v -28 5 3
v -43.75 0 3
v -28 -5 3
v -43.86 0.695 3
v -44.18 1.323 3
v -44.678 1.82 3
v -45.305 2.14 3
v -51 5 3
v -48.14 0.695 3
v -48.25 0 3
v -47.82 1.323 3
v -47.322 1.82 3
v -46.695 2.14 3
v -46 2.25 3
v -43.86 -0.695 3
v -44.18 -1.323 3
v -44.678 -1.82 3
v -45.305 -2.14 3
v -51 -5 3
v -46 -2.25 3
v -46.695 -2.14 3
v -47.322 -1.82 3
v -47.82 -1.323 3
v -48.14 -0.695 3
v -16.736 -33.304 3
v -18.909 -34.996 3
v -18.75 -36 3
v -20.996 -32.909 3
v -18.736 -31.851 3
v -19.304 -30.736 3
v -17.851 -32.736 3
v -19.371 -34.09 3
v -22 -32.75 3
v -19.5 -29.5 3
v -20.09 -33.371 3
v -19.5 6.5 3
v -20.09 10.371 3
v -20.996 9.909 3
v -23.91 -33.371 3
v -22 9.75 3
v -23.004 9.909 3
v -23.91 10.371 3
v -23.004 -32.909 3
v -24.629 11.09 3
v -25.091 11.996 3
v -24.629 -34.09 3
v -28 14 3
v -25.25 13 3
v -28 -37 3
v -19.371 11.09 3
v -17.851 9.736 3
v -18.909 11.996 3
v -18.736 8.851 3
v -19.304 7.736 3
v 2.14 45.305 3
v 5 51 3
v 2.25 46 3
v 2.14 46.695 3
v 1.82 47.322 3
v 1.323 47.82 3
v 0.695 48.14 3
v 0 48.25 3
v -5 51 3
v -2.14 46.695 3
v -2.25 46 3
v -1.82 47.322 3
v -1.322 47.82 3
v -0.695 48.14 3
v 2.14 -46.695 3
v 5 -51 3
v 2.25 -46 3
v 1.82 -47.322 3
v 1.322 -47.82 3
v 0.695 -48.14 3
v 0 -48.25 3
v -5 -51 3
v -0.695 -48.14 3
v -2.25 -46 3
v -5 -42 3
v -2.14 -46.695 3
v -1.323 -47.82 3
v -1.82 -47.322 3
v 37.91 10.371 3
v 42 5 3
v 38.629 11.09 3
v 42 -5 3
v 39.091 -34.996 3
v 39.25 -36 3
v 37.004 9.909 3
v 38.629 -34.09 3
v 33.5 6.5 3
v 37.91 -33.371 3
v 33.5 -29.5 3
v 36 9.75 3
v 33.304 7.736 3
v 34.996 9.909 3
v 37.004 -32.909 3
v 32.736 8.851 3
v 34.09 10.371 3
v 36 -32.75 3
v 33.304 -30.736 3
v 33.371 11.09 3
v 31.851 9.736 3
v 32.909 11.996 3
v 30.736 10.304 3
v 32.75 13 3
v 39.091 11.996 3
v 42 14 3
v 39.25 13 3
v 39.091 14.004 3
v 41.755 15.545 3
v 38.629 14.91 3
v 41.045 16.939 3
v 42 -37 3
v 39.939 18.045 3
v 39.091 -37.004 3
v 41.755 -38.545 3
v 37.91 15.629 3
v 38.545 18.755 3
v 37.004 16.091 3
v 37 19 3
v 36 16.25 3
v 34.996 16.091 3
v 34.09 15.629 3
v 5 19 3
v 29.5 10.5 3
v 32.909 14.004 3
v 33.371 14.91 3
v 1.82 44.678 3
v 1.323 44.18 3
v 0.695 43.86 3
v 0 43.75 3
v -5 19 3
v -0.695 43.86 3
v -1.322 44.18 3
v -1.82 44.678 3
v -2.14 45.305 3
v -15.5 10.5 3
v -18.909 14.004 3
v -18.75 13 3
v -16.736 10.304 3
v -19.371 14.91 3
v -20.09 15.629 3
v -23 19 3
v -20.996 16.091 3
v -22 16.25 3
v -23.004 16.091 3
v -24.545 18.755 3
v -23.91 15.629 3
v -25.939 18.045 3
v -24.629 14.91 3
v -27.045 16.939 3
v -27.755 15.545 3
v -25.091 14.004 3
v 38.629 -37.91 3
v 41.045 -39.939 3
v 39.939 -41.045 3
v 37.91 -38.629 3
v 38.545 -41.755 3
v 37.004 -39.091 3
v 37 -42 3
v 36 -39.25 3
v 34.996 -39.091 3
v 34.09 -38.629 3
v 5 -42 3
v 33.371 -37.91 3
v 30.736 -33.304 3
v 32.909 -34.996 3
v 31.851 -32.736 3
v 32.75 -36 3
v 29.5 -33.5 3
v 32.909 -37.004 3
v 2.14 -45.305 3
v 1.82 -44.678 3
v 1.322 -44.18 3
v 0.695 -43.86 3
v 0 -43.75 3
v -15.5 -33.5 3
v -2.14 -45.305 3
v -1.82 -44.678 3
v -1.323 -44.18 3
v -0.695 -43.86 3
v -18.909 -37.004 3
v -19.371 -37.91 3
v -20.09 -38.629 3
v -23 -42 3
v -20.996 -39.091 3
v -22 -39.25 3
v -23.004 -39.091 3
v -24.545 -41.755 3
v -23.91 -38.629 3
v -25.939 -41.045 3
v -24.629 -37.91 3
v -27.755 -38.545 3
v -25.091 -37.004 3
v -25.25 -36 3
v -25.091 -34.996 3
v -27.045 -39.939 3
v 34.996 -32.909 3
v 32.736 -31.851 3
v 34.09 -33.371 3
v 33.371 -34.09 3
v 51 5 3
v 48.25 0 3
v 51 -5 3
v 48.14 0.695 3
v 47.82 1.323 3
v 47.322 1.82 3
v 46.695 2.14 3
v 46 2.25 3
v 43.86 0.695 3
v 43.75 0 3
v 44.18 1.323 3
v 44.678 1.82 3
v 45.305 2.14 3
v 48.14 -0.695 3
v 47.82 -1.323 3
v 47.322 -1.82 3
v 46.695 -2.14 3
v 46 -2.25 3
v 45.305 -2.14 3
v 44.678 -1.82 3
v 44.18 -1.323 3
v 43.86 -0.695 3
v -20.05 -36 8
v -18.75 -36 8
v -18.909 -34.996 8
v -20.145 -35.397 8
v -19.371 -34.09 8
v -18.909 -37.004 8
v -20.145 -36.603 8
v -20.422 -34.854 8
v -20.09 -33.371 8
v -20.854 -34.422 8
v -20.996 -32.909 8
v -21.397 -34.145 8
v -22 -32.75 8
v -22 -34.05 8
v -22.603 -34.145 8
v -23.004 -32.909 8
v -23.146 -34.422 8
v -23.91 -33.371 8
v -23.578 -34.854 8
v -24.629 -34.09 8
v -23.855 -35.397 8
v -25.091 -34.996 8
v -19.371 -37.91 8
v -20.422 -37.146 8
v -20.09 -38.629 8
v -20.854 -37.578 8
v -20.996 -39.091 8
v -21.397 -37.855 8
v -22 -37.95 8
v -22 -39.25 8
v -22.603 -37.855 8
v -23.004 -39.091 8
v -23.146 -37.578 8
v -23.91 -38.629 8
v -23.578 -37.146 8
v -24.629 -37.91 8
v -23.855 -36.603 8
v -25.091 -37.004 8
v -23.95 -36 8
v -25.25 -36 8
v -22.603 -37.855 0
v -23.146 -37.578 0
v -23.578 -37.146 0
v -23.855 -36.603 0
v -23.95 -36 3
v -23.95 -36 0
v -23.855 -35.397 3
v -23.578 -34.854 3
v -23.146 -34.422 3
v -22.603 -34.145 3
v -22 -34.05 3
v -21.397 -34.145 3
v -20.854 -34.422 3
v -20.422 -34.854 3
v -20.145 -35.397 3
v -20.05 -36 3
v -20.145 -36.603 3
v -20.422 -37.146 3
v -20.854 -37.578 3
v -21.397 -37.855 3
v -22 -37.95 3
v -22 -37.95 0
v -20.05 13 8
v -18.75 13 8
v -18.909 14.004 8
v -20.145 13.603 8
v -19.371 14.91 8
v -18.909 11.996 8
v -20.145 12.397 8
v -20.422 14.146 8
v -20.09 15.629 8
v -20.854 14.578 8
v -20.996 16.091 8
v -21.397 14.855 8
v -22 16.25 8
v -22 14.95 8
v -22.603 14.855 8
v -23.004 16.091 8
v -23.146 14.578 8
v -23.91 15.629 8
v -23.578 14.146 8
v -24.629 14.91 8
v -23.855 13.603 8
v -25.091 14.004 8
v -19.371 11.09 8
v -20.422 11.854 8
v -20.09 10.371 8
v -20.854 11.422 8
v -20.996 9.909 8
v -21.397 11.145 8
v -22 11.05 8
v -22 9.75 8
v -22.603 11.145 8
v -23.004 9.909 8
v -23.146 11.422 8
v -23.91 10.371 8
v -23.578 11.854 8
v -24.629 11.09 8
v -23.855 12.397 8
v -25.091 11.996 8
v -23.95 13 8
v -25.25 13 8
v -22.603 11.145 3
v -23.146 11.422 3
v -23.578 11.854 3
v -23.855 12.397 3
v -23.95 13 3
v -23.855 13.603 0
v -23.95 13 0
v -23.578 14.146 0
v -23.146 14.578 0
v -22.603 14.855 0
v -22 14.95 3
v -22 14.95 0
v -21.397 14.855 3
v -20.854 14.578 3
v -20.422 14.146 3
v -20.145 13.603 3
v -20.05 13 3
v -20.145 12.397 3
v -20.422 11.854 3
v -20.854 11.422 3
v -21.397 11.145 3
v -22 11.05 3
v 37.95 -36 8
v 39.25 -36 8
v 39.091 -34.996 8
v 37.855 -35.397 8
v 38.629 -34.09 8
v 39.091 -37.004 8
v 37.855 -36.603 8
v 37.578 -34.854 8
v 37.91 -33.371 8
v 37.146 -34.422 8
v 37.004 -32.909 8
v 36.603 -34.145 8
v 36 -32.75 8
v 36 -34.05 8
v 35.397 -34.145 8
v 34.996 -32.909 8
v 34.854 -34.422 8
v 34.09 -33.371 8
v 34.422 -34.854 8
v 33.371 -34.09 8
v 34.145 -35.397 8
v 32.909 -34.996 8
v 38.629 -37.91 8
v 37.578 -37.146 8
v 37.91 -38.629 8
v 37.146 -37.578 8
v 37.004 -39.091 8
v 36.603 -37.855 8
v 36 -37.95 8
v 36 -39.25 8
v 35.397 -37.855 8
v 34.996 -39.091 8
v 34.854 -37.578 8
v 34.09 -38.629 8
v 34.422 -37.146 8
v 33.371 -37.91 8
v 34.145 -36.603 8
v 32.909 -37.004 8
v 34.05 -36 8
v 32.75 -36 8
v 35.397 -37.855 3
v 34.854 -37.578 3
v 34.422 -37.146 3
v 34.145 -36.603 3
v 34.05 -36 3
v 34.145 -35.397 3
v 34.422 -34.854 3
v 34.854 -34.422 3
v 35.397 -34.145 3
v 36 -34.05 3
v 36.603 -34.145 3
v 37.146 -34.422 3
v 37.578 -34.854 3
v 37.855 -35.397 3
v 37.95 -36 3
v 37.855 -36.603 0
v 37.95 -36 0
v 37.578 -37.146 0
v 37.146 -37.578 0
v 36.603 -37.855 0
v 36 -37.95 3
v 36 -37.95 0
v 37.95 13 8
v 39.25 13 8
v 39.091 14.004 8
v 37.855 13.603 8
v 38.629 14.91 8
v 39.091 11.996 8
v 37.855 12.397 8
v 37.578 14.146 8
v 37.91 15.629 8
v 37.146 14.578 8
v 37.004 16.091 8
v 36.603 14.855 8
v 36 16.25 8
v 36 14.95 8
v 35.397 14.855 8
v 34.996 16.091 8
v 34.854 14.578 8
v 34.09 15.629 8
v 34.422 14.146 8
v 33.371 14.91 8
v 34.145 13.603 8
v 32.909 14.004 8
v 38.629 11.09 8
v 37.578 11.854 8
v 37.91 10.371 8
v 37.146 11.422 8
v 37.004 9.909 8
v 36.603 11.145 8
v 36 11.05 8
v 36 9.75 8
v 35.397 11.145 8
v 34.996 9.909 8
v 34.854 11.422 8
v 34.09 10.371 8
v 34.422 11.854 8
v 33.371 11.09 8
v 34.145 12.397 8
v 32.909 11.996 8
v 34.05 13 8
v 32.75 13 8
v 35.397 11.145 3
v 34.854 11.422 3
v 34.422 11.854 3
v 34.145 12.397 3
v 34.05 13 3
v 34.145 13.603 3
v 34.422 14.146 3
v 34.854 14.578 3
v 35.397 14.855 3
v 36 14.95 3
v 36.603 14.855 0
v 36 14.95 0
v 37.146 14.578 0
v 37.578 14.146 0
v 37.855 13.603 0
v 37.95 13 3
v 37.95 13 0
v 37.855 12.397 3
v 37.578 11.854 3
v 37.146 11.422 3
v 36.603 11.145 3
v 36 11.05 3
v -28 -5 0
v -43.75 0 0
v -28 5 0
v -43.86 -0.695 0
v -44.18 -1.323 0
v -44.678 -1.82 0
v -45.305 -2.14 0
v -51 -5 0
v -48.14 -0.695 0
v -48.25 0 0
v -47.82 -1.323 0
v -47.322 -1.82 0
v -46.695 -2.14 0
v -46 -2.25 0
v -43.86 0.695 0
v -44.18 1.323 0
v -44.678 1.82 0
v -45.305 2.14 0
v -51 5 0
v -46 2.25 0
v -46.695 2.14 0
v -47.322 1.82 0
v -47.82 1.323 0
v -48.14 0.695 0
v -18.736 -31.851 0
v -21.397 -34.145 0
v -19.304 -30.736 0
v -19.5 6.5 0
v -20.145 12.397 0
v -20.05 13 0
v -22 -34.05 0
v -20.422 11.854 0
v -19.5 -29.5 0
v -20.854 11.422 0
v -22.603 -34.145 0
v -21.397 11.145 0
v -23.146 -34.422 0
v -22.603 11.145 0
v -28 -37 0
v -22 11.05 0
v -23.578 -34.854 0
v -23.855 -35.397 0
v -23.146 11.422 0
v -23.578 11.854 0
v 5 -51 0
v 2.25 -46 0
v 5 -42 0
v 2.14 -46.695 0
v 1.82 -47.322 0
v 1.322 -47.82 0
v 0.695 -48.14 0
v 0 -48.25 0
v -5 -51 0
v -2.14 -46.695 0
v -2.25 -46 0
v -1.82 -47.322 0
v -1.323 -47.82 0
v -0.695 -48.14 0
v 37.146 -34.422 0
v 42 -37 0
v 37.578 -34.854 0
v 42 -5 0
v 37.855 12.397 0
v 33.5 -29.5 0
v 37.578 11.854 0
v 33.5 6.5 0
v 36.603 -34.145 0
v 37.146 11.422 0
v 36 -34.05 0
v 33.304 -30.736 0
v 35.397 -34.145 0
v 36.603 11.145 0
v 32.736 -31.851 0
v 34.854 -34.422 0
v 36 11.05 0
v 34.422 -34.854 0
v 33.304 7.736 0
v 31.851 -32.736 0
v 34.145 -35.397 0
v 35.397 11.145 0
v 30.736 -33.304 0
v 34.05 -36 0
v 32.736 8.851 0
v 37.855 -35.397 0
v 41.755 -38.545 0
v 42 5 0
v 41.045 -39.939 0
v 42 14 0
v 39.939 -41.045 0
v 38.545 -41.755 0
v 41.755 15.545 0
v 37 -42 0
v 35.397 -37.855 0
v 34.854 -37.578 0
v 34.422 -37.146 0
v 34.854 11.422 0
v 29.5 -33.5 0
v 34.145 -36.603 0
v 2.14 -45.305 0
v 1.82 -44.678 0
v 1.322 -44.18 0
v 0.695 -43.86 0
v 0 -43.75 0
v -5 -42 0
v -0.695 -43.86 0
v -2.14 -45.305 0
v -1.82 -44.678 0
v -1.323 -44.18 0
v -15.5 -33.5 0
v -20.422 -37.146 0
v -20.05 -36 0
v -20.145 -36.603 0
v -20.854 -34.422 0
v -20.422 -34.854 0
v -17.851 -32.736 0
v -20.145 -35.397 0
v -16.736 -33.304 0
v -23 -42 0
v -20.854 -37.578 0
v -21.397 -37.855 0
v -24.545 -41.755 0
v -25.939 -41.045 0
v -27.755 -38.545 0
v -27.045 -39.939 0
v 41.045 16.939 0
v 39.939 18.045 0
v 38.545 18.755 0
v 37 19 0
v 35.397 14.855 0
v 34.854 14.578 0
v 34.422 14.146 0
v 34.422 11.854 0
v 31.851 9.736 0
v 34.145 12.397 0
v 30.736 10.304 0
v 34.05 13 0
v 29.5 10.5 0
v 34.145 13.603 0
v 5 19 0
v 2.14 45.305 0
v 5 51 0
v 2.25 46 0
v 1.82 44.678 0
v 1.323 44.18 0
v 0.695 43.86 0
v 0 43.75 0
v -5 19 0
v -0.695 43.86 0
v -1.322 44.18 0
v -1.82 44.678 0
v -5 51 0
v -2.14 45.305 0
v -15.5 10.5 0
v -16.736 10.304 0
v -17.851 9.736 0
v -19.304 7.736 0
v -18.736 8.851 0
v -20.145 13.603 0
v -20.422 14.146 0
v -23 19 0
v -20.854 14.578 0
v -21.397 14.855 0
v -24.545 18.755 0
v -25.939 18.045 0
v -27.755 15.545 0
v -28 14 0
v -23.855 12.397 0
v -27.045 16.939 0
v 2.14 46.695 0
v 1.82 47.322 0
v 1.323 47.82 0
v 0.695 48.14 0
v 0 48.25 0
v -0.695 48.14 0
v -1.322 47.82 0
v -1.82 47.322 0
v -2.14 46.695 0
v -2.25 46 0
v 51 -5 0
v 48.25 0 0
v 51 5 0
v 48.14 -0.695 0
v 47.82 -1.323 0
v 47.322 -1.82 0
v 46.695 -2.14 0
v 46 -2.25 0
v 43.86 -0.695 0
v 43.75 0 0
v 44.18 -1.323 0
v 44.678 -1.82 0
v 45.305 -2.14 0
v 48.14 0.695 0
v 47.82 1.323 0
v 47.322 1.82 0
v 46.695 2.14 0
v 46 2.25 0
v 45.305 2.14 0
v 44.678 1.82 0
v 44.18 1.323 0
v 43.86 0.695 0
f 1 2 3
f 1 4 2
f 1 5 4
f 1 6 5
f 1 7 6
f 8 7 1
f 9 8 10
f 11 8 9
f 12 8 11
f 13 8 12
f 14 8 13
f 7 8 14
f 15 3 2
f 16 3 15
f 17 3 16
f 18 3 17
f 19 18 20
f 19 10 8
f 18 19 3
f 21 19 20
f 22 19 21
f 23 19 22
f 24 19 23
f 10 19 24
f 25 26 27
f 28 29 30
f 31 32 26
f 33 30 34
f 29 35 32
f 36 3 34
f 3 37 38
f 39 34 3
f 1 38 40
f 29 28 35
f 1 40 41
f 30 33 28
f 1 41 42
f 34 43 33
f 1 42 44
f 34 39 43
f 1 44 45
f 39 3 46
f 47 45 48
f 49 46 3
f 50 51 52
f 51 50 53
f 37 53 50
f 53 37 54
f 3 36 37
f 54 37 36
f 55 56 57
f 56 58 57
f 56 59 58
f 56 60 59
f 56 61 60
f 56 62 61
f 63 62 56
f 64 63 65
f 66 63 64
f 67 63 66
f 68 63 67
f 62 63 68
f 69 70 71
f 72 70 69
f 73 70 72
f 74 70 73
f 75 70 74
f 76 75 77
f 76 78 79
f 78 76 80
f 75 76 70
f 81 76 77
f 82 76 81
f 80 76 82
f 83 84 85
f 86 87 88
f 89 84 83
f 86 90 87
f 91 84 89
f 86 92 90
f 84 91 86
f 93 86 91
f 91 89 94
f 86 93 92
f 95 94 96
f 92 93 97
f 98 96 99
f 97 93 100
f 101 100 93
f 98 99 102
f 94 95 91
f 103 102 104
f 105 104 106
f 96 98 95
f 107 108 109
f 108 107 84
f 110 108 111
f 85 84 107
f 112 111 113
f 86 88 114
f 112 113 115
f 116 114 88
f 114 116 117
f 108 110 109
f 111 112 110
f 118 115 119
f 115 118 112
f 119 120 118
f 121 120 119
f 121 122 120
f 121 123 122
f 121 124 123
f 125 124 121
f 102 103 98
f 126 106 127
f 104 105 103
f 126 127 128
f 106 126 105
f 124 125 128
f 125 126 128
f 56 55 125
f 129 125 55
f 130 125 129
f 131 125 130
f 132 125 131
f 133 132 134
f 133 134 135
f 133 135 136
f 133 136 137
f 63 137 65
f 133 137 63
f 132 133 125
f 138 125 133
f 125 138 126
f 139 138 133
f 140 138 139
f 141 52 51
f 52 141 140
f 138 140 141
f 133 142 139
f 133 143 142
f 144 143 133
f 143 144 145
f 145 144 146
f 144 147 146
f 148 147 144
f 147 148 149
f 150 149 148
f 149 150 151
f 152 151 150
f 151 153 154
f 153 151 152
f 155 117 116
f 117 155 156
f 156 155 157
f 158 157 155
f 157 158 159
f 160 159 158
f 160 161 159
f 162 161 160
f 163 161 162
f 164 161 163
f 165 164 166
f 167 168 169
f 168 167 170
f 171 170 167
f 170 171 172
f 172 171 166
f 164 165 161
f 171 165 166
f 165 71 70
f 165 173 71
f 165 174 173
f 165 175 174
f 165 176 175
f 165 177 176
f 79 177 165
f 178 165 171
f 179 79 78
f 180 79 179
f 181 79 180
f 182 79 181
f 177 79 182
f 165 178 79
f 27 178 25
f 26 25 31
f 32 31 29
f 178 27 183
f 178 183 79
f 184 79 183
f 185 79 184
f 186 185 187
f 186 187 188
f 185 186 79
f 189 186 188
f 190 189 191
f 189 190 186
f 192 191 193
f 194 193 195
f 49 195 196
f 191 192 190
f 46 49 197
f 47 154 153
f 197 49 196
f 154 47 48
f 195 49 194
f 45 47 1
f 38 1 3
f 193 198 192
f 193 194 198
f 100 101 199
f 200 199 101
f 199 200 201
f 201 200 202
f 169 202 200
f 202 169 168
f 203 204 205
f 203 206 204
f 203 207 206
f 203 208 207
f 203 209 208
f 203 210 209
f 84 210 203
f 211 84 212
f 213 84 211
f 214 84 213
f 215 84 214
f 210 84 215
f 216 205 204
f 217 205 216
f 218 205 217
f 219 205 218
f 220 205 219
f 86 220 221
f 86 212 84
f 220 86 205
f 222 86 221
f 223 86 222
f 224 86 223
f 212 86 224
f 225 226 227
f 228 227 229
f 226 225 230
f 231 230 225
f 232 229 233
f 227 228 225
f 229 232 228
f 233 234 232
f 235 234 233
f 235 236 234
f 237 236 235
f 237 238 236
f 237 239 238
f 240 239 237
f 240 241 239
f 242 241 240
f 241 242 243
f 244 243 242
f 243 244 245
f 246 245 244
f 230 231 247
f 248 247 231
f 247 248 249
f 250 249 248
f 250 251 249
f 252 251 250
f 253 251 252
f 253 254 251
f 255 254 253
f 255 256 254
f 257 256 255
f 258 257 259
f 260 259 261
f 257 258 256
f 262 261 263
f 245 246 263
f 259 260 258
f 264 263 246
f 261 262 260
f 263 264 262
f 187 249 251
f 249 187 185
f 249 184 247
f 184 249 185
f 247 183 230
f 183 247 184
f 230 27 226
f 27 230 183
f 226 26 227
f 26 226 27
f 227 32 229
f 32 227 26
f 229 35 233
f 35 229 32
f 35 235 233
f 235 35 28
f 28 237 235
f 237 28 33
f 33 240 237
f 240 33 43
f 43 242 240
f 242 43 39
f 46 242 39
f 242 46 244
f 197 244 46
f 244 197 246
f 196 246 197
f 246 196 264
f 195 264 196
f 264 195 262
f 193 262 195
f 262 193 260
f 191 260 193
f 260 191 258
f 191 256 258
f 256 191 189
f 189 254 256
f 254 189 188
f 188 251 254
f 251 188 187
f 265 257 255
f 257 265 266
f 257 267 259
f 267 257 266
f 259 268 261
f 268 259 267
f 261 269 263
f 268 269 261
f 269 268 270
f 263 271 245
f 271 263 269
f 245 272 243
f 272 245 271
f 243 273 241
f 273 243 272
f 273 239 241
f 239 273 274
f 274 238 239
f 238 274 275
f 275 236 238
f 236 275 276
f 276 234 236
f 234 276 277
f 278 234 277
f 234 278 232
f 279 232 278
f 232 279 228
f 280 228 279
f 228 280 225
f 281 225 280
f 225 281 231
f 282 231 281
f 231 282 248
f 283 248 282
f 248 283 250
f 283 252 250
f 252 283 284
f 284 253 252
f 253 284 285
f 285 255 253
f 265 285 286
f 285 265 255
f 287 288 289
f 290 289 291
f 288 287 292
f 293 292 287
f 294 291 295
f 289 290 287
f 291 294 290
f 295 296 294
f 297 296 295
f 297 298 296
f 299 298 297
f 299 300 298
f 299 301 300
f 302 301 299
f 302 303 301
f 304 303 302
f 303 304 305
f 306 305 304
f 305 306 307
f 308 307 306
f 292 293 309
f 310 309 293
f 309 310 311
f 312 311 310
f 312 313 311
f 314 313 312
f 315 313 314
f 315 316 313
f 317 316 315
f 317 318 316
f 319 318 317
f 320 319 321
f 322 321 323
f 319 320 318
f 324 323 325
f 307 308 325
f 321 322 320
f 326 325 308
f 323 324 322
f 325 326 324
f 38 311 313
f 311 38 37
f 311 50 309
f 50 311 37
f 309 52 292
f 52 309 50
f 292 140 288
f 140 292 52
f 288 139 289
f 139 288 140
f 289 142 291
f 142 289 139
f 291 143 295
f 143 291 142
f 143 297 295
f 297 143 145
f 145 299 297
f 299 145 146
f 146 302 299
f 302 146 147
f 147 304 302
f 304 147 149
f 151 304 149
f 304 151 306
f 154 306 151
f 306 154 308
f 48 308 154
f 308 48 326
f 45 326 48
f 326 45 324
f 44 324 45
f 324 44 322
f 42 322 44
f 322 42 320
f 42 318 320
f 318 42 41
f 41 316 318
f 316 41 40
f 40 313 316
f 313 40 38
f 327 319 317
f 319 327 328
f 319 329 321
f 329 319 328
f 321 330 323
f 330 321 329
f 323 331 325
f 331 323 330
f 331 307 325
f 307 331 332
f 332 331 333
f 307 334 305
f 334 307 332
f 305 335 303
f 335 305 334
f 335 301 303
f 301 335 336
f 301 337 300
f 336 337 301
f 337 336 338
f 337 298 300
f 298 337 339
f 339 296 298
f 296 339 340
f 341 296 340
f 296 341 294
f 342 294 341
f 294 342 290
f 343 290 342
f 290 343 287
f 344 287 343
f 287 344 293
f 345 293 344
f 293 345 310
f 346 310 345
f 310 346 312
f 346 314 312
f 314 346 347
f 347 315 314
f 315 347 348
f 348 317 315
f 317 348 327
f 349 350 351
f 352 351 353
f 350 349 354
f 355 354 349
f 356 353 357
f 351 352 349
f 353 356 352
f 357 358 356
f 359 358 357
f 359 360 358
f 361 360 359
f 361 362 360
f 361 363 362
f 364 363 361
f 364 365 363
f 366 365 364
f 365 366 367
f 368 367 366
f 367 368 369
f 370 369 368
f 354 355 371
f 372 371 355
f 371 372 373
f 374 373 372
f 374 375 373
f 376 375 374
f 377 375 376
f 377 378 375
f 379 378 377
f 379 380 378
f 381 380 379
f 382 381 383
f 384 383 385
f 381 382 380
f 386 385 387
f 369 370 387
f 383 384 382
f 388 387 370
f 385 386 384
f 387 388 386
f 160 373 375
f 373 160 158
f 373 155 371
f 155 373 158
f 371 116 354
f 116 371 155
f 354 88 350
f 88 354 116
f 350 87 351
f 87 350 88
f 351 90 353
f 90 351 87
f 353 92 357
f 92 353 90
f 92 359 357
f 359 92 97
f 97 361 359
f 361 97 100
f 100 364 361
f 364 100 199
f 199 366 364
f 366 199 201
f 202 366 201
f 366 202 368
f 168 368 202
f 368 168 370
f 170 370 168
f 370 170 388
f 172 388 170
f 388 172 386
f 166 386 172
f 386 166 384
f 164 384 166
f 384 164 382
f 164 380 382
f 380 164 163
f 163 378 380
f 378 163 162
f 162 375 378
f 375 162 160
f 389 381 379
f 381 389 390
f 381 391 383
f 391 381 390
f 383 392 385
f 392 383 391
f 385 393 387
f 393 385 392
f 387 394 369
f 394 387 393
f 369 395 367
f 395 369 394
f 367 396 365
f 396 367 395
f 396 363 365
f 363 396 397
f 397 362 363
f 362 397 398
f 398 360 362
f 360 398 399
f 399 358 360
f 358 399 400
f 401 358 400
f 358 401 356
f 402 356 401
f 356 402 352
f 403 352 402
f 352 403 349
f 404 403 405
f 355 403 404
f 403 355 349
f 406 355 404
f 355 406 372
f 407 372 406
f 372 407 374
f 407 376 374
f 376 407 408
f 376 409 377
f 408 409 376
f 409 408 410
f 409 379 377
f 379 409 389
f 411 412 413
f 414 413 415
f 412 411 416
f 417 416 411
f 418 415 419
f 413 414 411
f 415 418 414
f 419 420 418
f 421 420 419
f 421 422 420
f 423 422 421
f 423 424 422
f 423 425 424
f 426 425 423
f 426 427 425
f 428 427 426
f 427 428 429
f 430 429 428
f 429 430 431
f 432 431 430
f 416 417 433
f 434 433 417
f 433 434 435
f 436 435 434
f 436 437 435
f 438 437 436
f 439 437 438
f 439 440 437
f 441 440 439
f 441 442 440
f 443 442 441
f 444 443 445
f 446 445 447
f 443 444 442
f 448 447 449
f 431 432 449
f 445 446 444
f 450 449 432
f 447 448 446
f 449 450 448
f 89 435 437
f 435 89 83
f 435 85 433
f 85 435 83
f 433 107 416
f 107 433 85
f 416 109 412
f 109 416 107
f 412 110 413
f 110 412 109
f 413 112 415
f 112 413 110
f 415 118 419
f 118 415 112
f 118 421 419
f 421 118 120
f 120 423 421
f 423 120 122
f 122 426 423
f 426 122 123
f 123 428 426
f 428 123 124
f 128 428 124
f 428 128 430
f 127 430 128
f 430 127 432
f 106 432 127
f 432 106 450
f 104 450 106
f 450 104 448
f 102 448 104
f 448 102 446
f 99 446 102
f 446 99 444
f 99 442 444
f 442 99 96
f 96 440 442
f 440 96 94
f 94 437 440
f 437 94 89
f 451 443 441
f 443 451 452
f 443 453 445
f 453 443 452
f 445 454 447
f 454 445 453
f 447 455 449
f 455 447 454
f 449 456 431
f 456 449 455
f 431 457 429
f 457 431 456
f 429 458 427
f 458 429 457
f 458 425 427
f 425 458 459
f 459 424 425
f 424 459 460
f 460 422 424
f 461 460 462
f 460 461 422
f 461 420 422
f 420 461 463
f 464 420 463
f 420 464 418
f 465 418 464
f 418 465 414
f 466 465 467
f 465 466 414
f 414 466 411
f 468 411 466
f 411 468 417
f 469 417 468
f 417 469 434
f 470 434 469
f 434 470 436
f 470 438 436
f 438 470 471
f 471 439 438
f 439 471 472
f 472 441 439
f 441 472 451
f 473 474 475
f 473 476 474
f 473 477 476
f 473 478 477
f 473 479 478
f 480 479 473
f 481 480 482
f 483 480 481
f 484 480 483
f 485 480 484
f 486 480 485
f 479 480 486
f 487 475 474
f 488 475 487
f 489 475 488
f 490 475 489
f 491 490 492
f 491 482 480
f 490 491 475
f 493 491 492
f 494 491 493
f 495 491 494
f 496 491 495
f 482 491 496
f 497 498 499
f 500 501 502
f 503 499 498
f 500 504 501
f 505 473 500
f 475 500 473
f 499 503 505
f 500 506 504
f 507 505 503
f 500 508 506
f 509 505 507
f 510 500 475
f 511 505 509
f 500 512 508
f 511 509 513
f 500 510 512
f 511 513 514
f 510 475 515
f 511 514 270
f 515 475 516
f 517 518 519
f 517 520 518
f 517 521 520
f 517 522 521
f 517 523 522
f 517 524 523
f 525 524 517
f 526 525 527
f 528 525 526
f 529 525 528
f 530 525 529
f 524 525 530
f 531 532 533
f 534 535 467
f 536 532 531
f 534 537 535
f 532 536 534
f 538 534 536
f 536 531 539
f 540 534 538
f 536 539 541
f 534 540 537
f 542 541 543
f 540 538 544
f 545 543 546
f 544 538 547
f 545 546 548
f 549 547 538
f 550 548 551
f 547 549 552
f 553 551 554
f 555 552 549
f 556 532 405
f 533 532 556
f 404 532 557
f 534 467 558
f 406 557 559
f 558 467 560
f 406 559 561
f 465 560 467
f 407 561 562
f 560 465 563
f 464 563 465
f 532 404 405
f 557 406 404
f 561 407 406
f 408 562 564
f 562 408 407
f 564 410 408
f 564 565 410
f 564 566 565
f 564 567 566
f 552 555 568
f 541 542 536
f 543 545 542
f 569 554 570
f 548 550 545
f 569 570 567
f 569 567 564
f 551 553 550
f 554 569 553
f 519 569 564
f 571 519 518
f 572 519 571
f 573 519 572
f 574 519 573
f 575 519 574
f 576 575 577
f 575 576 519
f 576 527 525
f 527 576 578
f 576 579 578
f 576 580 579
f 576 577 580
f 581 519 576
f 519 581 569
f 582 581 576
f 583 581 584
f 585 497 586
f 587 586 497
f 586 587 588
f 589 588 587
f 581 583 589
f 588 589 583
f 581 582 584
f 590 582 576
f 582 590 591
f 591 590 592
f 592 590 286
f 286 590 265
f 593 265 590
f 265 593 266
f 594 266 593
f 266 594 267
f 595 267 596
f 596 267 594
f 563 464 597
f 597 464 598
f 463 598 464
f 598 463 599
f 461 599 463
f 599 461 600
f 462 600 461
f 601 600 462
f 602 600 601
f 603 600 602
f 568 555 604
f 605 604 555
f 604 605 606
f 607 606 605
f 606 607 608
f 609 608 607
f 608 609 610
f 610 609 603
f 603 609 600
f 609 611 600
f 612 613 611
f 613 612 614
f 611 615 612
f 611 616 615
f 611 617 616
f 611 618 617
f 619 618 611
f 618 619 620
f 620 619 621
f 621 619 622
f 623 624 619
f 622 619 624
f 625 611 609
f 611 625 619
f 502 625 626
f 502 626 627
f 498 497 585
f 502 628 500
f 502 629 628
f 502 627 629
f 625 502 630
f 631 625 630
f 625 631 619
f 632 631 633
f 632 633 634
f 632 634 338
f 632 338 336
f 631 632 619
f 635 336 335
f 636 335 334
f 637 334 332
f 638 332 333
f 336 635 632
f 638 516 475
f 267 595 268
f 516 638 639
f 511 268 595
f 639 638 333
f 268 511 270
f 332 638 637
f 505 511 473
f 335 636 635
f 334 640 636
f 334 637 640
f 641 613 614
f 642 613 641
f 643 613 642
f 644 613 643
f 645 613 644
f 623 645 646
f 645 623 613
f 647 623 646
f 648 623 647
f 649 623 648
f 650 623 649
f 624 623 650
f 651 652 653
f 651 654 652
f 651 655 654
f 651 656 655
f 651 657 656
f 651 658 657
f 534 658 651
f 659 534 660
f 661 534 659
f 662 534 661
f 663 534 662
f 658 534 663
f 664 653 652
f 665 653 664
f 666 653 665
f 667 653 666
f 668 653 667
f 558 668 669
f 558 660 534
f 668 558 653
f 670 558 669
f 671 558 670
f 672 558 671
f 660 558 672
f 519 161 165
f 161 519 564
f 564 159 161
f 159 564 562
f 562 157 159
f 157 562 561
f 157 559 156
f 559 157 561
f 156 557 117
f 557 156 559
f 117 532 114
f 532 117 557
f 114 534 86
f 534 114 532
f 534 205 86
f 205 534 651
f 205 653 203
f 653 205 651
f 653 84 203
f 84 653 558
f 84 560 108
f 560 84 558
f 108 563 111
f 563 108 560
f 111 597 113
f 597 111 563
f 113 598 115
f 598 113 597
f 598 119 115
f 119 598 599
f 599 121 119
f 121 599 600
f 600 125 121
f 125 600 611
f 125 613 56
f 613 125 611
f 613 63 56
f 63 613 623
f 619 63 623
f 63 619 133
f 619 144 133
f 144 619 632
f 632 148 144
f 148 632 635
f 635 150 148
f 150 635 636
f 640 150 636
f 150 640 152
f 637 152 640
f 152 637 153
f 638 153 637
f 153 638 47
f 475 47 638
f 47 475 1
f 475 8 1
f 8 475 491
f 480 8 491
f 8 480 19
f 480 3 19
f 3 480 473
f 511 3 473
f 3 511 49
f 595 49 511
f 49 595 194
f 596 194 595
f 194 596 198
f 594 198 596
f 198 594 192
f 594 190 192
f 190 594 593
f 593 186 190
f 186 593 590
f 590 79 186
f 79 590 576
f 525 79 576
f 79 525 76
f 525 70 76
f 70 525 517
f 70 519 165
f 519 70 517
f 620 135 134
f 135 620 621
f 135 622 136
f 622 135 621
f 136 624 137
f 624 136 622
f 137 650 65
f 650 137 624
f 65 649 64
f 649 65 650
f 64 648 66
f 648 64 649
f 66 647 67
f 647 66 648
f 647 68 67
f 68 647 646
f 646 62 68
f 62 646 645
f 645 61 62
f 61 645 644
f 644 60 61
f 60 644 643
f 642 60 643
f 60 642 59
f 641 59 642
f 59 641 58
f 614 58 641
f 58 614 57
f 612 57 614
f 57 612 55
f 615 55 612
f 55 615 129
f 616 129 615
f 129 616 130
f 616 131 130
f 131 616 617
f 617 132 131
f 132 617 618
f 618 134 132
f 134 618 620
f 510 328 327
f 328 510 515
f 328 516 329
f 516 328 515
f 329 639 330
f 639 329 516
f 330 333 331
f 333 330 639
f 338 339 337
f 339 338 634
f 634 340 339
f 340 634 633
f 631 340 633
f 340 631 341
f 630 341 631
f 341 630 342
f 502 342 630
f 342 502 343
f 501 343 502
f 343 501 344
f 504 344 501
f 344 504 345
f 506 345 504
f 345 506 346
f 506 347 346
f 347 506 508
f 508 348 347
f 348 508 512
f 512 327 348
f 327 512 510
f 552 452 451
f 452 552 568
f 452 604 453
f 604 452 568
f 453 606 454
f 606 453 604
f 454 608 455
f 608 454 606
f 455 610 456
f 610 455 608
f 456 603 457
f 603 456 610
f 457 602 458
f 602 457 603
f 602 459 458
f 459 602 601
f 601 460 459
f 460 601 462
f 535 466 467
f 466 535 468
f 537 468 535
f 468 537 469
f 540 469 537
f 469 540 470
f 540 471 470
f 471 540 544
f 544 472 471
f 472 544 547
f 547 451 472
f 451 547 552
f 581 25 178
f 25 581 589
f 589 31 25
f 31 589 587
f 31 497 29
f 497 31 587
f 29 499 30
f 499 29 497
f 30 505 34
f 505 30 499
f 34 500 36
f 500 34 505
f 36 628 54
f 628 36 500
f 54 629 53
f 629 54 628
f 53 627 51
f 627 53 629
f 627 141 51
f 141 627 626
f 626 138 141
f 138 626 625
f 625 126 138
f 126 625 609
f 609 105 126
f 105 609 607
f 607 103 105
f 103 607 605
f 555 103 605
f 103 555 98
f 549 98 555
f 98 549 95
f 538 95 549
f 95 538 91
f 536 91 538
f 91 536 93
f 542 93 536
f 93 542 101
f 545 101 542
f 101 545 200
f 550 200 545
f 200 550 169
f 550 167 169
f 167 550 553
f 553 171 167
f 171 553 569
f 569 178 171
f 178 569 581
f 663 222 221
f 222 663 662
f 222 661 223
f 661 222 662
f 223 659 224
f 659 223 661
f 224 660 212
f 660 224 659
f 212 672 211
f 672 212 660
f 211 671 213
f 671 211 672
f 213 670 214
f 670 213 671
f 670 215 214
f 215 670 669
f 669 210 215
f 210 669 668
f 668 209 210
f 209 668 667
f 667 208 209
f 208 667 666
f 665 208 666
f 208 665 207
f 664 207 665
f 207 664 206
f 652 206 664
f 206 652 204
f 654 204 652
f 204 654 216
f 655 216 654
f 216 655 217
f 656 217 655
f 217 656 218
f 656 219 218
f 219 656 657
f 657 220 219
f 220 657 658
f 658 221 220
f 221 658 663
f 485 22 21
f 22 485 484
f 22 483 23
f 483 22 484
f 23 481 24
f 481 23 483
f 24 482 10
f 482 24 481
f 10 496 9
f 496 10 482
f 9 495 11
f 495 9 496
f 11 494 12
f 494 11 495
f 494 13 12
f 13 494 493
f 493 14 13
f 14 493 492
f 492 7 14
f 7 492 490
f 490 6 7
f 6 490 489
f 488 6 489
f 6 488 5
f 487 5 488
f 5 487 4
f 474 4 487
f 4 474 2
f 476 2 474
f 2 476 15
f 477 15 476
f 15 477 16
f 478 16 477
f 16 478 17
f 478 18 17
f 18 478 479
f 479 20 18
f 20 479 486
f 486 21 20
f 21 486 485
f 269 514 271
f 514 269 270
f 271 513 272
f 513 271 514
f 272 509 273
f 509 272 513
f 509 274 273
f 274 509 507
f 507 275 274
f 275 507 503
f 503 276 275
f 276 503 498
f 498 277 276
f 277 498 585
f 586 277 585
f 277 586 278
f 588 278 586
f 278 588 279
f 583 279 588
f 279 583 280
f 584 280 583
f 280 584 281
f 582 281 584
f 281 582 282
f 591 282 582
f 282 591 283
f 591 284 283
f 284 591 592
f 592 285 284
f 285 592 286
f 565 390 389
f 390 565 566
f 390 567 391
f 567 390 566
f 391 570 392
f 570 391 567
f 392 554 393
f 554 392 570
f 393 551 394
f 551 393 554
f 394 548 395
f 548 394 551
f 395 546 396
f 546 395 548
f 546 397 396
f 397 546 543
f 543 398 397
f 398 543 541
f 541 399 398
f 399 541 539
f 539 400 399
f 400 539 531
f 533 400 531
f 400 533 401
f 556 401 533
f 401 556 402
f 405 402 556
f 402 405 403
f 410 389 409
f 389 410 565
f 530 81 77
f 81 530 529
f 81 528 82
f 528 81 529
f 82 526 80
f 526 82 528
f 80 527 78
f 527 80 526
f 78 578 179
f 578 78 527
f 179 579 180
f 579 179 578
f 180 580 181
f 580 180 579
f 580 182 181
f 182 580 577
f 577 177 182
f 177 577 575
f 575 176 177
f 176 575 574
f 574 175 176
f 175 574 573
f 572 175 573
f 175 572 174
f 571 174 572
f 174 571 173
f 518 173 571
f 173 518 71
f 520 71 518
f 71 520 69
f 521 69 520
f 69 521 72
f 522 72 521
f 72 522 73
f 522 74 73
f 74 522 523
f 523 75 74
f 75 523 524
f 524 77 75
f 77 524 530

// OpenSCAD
boxPostsDistance = 92;

raspberrypiHoleX = 58;
raspberrypiHoleY = 49;

raspberrypiStandOffHeight = 5;

standOffBoardHeight = 3;

innerCornerRadius = 4;
outerCornerRadius = 10;

outerOffset = 6;

/*piOffsetX = 7;*/
/*piOffsetY = 10;*/
piOffsetX = boxPostsDistance/2 - raspberrypiHoleX/2 - 10;
piOffsetY = boxPostsDistance/2 - raspberrypiHoleY/2 - 10;

linear_extrude( standOffBoardHeight )
difference() {


  union() {
    /* support board wings */
    for( a = [0,1] ) {
      rotate([0,0,a*90])
      square( [ boxPostsDistance + 10 , 10 ], center = true );
    }

    hull() {
      for( a = [-1,1] ) {
        for( b = [-1,1] ) {
          translate([piOffsetX, -piOffsetY, 0])
          translate( [ a * -raspberrypiHoleX/2 + a * -outerOffset, b * -raspberrypiHoleY/2 + b * -outerOffset, 0 ] )
          translate( [ a * outerCornerRadius/2, b * outerCornerRadius/2, 0 ] )
          circle( d = outerCornerRadius, center = true, $fn = 20 );
        }
      }
    }

  }

  union() {

    /*support board wing holes */
    for( a = [0,1] ) {
      rotate([0,0,a*90]) {
        translate([ ( boxPostsDistance / 2 ), 0, 0 ])
        circle( d = 4.5, $fn = 20 );
        translate([ ( - boxPostsDistance / 2 ), 0, 0 ])
        circle( d = 4.5, $fn = 20 );
      }
    }

    /* lower board holes */
    for( a = [-1,1] ) {
      for( b = [-1,1] ) {
        translate([piOffsetX, -piOffsetY, 0])
        translate([ a * raspberrypiHoleX/2 , b * raspberrypiHoleY/2 , 0 ])
        circle( d = 3.9, $fn = 20 );
      }
    }

    /* central support board */
    hull() {
      for( a = [-1,1] ) {
        for( b = [-1,1] ) {
          translate([piOffsetX, -piOffsetY, 0])
          translate( [ ( a * ( raspberrypiHoleX/2 - innerCornerRadius-2.5 ) ), ( b * ( raspberrypiHoleY/2 - innerCornerRadius-2.5 ) ), 0 ] )
          circle( r = innerCornerRadius, center = true, $fn = 20 );
        }
      }
    }

  }

}

/* loop through inverse and direct positions for the stand offs */
for( a = [-1,1] ) {
  for( b = [-1,1] ) {

    /* position the stand offs */
    translate([piOffsetX, -piOffsetY, 0])
    translate([ a * raspberrypiHoleX/2 , b * raspberrypiHoleY/2 ,standOffBoardHeight ])
    linear_extrude( raspberrypiStandOffHeight )
    difference() {
      circle( d = 6.5, $fn = 20 );
      circle( d = 3.9, $fn = 20 );
    }

  }
}
